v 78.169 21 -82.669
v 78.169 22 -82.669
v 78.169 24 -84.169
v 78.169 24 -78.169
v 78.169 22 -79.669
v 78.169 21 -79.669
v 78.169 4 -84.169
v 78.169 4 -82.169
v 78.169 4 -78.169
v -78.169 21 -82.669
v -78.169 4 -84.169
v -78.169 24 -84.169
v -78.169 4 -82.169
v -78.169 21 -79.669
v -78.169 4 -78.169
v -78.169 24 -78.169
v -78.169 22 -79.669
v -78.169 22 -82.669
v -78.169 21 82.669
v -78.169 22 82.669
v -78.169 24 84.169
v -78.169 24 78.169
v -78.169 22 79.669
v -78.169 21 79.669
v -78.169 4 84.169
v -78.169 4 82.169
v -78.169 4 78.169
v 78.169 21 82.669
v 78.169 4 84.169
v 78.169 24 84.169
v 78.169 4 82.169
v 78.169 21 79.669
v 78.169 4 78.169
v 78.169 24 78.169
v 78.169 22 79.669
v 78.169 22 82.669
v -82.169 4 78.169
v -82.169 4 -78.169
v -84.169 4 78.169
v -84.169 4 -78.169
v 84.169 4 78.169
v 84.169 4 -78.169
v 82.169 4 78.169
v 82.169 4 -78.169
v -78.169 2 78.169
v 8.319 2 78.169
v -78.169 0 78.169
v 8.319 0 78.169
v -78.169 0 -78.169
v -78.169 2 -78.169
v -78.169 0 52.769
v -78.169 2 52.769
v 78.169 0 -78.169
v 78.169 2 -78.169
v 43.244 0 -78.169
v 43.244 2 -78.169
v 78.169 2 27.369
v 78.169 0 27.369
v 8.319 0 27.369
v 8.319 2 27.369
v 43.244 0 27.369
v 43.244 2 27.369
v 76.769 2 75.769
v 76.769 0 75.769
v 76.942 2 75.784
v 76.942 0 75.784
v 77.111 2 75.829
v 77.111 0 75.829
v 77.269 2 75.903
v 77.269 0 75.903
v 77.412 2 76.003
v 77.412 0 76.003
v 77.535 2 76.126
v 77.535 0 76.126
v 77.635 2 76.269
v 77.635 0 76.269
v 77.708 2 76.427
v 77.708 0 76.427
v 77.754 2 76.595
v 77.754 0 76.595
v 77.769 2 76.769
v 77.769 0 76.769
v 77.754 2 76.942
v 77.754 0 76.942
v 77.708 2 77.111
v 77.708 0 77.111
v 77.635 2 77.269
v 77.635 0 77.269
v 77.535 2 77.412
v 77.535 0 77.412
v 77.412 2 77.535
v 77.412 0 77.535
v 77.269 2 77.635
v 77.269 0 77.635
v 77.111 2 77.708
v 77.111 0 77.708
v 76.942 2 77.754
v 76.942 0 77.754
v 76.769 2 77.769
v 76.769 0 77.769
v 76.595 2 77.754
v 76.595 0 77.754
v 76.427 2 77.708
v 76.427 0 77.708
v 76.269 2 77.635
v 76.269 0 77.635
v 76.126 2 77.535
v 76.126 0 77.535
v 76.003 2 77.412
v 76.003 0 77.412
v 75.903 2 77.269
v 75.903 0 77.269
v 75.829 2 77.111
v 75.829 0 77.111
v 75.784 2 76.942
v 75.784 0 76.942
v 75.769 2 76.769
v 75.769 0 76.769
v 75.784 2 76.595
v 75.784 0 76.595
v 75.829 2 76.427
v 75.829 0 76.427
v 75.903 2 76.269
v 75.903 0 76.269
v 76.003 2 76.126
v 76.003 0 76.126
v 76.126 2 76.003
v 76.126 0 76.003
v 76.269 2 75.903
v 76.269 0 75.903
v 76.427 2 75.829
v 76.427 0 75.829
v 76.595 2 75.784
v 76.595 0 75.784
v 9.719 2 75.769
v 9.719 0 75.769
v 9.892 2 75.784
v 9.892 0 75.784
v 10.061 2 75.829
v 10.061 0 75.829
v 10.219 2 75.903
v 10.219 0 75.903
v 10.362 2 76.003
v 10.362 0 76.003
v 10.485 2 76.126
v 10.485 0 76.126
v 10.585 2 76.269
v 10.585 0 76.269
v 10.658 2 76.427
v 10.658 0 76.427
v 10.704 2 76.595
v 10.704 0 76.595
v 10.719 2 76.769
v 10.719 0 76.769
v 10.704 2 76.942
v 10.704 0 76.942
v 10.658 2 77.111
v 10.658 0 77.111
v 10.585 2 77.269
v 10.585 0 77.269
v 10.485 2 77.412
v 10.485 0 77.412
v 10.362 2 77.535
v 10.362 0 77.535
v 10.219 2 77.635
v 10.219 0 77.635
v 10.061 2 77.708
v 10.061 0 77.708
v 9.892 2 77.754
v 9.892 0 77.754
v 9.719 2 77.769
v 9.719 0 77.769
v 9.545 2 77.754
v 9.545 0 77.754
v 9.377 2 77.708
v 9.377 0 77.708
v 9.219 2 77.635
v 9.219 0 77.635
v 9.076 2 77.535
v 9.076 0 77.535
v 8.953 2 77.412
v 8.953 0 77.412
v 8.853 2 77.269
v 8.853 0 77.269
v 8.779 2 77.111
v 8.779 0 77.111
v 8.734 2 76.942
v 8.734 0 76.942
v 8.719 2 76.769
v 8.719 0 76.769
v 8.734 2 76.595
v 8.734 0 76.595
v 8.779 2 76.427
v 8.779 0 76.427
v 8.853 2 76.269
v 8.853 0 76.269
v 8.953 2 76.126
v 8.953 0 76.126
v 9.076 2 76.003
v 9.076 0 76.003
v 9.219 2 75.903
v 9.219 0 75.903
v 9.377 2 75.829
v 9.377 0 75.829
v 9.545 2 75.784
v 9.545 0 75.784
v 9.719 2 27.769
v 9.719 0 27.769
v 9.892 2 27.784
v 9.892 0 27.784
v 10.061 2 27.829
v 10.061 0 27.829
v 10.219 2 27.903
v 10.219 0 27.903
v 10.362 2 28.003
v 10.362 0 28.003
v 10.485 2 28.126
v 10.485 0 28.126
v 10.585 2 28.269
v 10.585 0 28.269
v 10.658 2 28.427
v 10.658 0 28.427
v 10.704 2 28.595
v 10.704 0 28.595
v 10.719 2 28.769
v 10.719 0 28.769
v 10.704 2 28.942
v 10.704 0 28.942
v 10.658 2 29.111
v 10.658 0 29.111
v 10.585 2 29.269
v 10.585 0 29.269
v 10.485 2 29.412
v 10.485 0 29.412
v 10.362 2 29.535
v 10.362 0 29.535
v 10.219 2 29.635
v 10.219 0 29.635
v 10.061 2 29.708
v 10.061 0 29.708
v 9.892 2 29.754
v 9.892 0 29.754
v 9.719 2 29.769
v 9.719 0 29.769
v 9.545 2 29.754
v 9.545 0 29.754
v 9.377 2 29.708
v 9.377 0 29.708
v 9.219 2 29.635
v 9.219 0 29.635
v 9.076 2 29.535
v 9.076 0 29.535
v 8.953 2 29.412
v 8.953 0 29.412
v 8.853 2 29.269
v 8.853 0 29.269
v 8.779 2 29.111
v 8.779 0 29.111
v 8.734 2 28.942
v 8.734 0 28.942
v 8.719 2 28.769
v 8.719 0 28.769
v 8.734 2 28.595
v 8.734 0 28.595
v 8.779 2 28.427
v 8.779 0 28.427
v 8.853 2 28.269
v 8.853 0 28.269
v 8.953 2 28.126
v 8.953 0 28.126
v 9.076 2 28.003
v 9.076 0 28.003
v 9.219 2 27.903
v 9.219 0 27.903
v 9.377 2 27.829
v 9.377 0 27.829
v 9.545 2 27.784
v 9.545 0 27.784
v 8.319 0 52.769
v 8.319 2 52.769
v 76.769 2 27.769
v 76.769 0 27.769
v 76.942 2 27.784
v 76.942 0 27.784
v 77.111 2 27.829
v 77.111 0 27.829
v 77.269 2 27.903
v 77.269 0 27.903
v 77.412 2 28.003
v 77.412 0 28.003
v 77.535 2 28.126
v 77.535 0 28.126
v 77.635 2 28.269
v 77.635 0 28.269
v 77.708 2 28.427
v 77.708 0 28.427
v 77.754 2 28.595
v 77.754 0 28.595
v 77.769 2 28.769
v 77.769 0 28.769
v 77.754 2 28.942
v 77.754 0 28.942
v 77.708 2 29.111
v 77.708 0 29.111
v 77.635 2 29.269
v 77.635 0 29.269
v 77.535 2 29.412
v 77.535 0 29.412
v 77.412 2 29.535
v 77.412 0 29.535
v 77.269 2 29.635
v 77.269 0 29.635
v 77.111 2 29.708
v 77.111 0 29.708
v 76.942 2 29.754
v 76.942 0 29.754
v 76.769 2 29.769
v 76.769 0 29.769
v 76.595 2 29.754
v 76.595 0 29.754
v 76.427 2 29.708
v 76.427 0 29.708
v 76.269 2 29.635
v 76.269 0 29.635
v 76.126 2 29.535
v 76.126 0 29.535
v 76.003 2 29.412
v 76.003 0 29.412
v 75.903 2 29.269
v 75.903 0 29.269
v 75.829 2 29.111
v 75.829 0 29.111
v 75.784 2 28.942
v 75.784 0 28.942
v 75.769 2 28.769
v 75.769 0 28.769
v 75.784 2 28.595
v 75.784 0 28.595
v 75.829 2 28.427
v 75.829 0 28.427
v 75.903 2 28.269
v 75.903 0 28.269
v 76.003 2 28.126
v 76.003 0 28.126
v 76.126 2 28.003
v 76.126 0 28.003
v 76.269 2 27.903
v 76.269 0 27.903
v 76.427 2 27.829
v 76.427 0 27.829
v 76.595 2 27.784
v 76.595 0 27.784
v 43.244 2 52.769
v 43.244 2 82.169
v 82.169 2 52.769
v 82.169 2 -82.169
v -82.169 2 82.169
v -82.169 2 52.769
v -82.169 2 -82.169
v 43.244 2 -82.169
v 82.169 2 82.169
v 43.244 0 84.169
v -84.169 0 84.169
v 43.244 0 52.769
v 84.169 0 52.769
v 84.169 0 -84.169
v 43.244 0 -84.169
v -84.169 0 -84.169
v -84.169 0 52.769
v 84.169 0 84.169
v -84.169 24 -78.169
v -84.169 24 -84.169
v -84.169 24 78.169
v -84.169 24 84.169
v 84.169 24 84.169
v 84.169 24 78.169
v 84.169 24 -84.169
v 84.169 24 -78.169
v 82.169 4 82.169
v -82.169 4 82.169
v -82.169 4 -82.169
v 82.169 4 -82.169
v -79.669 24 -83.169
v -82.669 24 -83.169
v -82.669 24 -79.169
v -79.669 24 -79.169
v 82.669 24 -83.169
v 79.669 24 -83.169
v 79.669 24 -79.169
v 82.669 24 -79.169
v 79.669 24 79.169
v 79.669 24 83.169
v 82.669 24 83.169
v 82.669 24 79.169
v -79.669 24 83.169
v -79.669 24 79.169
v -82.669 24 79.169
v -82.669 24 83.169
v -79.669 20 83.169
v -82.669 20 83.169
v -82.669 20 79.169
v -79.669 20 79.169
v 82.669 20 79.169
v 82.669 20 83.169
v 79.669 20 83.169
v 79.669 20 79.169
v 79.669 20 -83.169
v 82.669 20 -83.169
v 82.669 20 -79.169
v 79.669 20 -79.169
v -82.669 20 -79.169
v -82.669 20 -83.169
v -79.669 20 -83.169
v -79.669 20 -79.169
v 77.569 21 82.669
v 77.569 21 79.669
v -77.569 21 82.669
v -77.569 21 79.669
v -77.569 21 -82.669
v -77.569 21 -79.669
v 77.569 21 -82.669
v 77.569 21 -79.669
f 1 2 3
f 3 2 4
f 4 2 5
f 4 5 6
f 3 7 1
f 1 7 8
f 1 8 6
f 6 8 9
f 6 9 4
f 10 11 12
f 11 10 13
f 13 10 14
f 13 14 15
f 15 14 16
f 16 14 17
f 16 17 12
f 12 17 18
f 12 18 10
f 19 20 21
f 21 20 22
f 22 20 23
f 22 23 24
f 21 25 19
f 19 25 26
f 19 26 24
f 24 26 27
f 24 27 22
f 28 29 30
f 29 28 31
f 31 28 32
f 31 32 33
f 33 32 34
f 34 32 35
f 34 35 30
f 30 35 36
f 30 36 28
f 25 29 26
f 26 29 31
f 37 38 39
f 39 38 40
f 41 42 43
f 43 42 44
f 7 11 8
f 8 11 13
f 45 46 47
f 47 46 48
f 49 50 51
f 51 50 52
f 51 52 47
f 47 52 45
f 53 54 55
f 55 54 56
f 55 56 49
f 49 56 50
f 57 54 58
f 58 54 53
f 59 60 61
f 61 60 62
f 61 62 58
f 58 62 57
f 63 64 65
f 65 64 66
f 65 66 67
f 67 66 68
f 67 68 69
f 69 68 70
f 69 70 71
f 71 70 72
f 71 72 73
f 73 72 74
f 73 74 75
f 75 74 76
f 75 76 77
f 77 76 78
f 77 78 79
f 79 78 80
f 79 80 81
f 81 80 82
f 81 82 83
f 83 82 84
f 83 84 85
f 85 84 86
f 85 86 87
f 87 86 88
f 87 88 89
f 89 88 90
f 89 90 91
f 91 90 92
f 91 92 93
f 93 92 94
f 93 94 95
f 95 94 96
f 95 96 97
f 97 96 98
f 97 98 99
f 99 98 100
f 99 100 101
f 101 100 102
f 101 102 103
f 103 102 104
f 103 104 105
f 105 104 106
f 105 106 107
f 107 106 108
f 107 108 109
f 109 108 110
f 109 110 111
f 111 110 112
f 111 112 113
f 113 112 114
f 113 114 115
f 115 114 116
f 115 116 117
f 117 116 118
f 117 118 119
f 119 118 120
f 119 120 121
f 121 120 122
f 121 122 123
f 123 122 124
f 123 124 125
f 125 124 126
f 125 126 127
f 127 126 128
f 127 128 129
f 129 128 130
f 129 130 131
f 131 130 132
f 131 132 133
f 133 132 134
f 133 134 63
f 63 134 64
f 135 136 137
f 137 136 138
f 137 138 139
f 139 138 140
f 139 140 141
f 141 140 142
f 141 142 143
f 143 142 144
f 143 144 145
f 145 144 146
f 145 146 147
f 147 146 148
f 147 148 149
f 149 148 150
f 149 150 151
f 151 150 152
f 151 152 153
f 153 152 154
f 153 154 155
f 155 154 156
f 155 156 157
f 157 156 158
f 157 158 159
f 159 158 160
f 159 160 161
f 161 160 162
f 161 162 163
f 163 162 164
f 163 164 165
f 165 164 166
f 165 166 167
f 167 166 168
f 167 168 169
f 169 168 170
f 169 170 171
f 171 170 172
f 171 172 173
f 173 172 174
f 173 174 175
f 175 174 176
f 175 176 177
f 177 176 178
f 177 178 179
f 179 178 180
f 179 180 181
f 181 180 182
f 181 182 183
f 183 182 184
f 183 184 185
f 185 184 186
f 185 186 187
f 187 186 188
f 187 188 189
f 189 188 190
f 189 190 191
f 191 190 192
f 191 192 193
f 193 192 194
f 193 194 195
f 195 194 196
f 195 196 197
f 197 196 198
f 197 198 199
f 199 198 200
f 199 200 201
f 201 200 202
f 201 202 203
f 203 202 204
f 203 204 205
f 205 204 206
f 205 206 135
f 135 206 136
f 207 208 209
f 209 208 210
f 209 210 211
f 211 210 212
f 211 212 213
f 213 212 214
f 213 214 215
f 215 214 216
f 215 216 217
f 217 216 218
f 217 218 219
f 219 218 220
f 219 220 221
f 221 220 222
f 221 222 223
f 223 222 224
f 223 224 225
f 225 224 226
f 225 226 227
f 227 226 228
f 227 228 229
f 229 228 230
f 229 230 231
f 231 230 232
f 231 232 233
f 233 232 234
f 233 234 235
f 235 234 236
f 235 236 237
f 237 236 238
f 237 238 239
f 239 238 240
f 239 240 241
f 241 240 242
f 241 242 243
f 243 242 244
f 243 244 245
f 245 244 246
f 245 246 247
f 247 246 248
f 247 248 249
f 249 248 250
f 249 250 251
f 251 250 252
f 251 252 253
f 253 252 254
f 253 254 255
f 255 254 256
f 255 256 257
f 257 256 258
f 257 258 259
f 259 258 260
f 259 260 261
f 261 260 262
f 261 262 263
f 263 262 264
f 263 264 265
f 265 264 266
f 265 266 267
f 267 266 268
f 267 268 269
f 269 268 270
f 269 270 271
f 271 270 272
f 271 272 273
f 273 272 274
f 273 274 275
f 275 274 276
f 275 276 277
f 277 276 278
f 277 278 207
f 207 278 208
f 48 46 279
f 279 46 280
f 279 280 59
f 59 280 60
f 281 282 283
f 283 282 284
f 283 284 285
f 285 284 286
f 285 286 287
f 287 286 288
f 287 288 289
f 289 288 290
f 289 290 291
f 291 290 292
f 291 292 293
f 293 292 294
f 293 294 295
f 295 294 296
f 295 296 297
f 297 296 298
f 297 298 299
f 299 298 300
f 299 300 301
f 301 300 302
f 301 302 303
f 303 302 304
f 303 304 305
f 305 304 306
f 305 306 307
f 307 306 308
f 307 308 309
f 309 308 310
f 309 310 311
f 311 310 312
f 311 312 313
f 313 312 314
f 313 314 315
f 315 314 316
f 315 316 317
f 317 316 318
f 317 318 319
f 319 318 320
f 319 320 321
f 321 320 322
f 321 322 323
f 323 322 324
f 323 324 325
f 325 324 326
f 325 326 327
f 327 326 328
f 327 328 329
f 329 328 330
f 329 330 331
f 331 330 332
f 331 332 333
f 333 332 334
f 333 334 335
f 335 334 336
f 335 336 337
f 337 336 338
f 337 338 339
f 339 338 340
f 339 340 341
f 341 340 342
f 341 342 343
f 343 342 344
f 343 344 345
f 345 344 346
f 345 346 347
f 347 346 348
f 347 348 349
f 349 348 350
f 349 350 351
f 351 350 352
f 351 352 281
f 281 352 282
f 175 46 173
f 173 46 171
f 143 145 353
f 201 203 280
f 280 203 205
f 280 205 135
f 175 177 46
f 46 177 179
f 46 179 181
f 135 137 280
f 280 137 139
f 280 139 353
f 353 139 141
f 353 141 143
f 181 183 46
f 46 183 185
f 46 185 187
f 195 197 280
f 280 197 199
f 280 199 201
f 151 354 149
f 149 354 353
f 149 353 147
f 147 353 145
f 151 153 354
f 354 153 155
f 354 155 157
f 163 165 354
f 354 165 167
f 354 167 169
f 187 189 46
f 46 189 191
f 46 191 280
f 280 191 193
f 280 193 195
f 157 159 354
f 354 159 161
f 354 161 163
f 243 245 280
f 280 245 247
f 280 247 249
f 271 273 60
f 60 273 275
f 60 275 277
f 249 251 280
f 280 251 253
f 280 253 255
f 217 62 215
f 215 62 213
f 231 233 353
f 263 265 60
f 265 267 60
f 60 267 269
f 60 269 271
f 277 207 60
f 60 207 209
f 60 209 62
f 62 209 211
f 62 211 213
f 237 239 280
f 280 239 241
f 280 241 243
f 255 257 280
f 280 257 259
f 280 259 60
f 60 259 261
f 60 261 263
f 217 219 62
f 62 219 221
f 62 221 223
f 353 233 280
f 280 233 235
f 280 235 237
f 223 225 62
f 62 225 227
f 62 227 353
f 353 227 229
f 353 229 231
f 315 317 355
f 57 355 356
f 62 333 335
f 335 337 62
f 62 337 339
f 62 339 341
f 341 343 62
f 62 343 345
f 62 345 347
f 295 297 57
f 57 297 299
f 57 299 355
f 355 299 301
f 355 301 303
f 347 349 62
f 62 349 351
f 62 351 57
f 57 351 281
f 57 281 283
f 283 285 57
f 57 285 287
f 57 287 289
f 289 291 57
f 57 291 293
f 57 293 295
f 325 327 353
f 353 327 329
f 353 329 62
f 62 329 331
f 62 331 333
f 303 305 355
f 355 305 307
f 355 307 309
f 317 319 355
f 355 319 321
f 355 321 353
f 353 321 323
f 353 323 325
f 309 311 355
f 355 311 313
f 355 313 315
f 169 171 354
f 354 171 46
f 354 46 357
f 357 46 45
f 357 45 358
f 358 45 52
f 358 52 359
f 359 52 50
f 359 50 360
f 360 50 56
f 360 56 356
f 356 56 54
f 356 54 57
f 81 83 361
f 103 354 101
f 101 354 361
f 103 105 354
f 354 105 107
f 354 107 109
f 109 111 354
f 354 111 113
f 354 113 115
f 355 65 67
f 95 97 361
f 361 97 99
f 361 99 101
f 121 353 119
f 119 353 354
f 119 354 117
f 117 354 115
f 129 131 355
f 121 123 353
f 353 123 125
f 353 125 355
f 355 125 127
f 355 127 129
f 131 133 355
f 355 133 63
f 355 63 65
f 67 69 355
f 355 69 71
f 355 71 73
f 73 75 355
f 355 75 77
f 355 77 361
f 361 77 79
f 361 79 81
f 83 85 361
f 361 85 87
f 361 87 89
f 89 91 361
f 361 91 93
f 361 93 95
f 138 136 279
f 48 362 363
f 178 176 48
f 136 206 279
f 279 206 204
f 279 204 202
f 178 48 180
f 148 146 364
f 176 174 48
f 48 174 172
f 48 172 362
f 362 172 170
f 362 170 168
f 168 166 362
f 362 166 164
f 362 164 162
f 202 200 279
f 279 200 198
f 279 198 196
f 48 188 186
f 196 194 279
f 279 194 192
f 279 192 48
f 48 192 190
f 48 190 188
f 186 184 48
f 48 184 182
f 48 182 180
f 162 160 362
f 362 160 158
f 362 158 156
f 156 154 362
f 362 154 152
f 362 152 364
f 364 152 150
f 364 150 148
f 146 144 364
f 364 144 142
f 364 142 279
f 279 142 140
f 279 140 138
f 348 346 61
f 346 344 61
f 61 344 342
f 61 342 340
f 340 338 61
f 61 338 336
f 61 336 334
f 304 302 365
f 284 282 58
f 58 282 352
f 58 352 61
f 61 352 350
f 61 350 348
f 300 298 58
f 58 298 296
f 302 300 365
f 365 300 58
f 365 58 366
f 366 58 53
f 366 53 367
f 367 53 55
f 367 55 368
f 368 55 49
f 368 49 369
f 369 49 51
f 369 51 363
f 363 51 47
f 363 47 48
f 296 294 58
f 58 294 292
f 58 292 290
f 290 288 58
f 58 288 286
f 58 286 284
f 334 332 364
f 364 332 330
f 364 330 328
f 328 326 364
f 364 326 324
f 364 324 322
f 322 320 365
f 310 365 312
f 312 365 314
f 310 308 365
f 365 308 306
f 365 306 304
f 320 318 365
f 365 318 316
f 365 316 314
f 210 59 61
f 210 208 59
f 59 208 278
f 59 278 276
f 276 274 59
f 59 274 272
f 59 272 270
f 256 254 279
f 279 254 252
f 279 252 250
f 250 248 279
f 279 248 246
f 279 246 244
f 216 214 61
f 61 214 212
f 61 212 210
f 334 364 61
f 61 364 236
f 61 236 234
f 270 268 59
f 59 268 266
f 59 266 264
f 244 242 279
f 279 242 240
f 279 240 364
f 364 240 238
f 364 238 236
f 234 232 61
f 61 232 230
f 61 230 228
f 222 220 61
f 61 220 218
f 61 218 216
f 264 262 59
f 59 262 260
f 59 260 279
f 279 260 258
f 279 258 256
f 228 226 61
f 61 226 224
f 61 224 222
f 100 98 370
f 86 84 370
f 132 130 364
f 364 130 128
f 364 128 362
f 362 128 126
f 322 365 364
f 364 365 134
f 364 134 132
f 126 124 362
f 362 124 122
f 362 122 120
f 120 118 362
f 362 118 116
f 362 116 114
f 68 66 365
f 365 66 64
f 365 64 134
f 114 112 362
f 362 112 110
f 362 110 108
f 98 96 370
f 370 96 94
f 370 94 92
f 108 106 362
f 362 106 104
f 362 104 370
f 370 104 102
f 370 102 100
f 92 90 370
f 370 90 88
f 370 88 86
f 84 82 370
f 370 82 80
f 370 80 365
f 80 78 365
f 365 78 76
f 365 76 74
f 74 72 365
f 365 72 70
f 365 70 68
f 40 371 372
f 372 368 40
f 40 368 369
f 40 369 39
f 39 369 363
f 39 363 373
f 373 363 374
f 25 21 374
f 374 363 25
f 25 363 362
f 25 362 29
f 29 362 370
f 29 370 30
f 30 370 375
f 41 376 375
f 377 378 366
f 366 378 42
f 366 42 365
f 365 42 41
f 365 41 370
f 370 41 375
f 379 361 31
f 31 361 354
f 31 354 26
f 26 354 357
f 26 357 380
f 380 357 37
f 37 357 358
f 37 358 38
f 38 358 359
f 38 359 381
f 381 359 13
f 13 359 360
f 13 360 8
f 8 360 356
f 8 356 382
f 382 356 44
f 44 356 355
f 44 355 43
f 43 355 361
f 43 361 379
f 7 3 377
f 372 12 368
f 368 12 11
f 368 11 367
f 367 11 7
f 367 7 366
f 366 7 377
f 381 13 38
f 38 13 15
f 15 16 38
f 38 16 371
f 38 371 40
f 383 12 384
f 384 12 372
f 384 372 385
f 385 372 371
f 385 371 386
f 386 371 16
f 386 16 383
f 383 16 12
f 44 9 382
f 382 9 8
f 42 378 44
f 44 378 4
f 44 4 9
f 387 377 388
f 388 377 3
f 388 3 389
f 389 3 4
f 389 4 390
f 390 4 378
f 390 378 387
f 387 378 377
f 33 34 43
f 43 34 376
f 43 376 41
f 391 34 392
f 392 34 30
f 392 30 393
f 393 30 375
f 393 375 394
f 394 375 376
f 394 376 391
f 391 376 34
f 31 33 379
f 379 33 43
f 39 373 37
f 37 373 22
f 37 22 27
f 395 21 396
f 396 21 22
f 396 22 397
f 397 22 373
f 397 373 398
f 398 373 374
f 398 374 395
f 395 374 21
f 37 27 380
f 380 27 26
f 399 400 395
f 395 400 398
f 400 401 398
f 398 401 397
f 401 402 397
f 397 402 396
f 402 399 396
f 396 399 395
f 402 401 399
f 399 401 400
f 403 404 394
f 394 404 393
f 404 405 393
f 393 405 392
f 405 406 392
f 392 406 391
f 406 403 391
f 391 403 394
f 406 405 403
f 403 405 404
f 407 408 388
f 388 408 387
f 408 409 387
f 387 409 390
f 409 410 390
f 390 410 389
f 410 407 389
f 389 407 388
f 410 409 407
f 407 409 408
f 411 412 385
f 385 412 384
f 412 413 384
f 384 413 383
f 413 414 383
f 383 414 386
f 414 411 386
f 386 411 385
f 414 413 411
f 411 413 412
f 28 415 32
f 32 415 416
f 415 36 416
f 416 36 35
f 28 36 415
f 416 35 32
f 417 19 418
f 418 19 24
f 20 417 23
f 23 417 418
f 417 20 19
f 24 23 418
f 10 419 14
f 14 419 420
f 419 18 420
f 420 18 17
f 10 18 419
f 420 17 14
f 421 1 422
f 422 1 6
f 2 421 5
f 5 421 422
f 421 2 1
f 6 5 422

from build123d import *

# Parameters (mm, degrees)
SKETCH1_W            = 164.3375
SKETCH1_H            = 164.3375
SKETCH1_R            = 1
BOSS_EXTRUDE1_DEPTH  = 2
SKETCH1_3_W          = 168.3375
SKETCH1_3_H          = 168.3375
SKETCH1_3_W_2        = 164.3375
SKETCH1_3_H_2        = 164.3375
BOSS_EXTRUDE2_DEPTH  = 4
SKETCH2_W            = 6
SKETCH2_H            = 6
BOSS_EXTRUDE3_DEPTH  = 20
SKETCH3_W            = 3
SKETCH3_H            = 4
CUT_EXTRUDE1_DEPTH   = 4
BOSS_EXTRUDE4_START  = -1.5
BOSS_EXTRUDE4_DEPTH  = 3
MIRROR2_START        = -1.5
MIRROR2_COPY_1_DEPTH = 3
MIRROR2_COPY_2_DEPTH = 3


with BuildPart() as part:
    # Sketch1 → Boss-Extrude1 (new body)
    with BuildSketch(Plane(origin=(0, 0, 0), x_dir=(1, 0, 0), z_dir=(0, 1, 0))):
        Rectangle(SKETCH1_W, SKETCH1_H)
        Polygon((8.31875, -27.36875), (8.31875, -78.16875), (-78.16875, -78.16875), (-78.16875, 78.16875), (78.16875, 78.16875), (78.16875, -27.36875), (9.71875, -27.36875), align=None, mode=Mode.SUBTRACT)
        with Locations((9.71875, -76.76875)):
            Circle(SKETCH1_R, mode=Mode.SUBTRACT)
        with Locations((76.76875, -76.76875)):
            Circle(SKETCH1_R, mode=Mode.SUBTRACT)
        with Locations((9.71875, -28.76875)):
            Circle(SKETCH1_R, mode=Mode.SUBTRACT)
        with Locations((76.76875, -28.76875)):
            Circle(SKETCH1_R, mode=Mode.SUBTRACT)
    extrude(amount=BOSS_EXTRUDE1_DEPTH)

    # Sketch1<3> → Boss-Extrude2 (add)
    with BuildSketch(Plane(origin=(0, 0, 0), x_dir=(1, 0, 0), z_dir=(0, 1, 0))):
        Rectangle(SKETCH1_3_W, SKETCH1_3_H)
        Rectangle(SKETCH1_3_W_2, SKETCH1_3_H_2, mode=Mode.SUBTRACT)
    extrude(amount=BOSS_EXTRUDE2_DEPTH)

    # Sketch2 → Boss-Extrude3 (add)
    with BuildSketch(Plane(origin=(0, 4, 0), x_dir=(1, 0, 0), z_dir=(0, 1, 0))):
        with Locations((-81.16875, 81.16875)):
            Rectangle(SKETCH2_W, SKETCH2_H)
        with Locations((81.16875, 81.16875)):
            Rectangle(SKETCH2_W, SKETCH2_H)
        with Locations((81.16875, -81.16875)):
            Rectangle(SKETCH2_W, SKETCH2_H)
        with Locations((-81.16875, -81.16875)):
            Rectangle(SKETCH2_W, SKETCH2_H)
    extrude(amount=BOSS_EXTRUDE3_DEPTH)

    # Sketch3 → Cut-Extrude1 (cut)
    with BuildSketch(Plane(origin=(0, 24, 0), x_dir=(1, 0, 0), z_dir=(0, 1, 0))):
        with Locations((81.16875, -81.16875)):
            Rectangle(SKETCH3_W, SKETCH3_H)
        with Locations((81.16875, 81.16875)):
            Rectangle(SKETCH3_W, SKETCH3_H)
        with Locations((-81.16875, 81.16875)):
            Rectangle(SKETCH3_W, SKETCH3_H)
        with Locations((-81.16875, -81.16875)):
            Rectangle(SKETCH3_W, SKETCH3_H)
    extrude(amount=-CUT_EXTRUDE1_DEPTH, mode=Mode.SUBTRACT)

    # Sketch4 → Boss-Extrude4 (add)
    with BuildSketch(Plane(origin=(0, 0, 78.16875), x_dir=(-1, 0, 0), z_dir=(0, 0, -1)).offset(BOSS_EXTRUDE4_START)):
        Polygon((-77.56875, 21), (-78.16875, 22), (-78.16875, 21), align=None)
    boss_extrude4 = extrude(amount=-BOSS_EXTRUDE4_DEPTH)

    # Mirror1: Boss-Extrude4 across plane
    add(boss_extrude4.mirror(Plane(origin=(0, 0, 0), x_dir=(0, 0, 1), z_dir=(1, 0, 0))))

    # Mirror2 copy 1 sketch → Mirror2 copy 1 (add)
    with BuildSketch(Plane.XY.offset(-78.16875).offset(MIRROR2_START)):
        Polygon((-77.56875, 21), (-78.16875, 22), (-78.16875, 21), align=None)
    extrude(amount=-MIRROR2_COPY_1_DEPTH)

    # Mirror2 copy 2 sketch → Mirror2 copy 2 (add)
    with BuildSketch(Plane(origin=(0, 0, -78.16875), x_dir=(-1, 0, 0), z_dir=(0, 0, 1)).offset(MIRROR2_START)):
        Polygon((-77.56875, -21), (-78.16875, -22), (-78.16875, -21), align=None)
    extrude(amount=-MIRROR2_COPY_2_DEPTH)


solid = part.part
